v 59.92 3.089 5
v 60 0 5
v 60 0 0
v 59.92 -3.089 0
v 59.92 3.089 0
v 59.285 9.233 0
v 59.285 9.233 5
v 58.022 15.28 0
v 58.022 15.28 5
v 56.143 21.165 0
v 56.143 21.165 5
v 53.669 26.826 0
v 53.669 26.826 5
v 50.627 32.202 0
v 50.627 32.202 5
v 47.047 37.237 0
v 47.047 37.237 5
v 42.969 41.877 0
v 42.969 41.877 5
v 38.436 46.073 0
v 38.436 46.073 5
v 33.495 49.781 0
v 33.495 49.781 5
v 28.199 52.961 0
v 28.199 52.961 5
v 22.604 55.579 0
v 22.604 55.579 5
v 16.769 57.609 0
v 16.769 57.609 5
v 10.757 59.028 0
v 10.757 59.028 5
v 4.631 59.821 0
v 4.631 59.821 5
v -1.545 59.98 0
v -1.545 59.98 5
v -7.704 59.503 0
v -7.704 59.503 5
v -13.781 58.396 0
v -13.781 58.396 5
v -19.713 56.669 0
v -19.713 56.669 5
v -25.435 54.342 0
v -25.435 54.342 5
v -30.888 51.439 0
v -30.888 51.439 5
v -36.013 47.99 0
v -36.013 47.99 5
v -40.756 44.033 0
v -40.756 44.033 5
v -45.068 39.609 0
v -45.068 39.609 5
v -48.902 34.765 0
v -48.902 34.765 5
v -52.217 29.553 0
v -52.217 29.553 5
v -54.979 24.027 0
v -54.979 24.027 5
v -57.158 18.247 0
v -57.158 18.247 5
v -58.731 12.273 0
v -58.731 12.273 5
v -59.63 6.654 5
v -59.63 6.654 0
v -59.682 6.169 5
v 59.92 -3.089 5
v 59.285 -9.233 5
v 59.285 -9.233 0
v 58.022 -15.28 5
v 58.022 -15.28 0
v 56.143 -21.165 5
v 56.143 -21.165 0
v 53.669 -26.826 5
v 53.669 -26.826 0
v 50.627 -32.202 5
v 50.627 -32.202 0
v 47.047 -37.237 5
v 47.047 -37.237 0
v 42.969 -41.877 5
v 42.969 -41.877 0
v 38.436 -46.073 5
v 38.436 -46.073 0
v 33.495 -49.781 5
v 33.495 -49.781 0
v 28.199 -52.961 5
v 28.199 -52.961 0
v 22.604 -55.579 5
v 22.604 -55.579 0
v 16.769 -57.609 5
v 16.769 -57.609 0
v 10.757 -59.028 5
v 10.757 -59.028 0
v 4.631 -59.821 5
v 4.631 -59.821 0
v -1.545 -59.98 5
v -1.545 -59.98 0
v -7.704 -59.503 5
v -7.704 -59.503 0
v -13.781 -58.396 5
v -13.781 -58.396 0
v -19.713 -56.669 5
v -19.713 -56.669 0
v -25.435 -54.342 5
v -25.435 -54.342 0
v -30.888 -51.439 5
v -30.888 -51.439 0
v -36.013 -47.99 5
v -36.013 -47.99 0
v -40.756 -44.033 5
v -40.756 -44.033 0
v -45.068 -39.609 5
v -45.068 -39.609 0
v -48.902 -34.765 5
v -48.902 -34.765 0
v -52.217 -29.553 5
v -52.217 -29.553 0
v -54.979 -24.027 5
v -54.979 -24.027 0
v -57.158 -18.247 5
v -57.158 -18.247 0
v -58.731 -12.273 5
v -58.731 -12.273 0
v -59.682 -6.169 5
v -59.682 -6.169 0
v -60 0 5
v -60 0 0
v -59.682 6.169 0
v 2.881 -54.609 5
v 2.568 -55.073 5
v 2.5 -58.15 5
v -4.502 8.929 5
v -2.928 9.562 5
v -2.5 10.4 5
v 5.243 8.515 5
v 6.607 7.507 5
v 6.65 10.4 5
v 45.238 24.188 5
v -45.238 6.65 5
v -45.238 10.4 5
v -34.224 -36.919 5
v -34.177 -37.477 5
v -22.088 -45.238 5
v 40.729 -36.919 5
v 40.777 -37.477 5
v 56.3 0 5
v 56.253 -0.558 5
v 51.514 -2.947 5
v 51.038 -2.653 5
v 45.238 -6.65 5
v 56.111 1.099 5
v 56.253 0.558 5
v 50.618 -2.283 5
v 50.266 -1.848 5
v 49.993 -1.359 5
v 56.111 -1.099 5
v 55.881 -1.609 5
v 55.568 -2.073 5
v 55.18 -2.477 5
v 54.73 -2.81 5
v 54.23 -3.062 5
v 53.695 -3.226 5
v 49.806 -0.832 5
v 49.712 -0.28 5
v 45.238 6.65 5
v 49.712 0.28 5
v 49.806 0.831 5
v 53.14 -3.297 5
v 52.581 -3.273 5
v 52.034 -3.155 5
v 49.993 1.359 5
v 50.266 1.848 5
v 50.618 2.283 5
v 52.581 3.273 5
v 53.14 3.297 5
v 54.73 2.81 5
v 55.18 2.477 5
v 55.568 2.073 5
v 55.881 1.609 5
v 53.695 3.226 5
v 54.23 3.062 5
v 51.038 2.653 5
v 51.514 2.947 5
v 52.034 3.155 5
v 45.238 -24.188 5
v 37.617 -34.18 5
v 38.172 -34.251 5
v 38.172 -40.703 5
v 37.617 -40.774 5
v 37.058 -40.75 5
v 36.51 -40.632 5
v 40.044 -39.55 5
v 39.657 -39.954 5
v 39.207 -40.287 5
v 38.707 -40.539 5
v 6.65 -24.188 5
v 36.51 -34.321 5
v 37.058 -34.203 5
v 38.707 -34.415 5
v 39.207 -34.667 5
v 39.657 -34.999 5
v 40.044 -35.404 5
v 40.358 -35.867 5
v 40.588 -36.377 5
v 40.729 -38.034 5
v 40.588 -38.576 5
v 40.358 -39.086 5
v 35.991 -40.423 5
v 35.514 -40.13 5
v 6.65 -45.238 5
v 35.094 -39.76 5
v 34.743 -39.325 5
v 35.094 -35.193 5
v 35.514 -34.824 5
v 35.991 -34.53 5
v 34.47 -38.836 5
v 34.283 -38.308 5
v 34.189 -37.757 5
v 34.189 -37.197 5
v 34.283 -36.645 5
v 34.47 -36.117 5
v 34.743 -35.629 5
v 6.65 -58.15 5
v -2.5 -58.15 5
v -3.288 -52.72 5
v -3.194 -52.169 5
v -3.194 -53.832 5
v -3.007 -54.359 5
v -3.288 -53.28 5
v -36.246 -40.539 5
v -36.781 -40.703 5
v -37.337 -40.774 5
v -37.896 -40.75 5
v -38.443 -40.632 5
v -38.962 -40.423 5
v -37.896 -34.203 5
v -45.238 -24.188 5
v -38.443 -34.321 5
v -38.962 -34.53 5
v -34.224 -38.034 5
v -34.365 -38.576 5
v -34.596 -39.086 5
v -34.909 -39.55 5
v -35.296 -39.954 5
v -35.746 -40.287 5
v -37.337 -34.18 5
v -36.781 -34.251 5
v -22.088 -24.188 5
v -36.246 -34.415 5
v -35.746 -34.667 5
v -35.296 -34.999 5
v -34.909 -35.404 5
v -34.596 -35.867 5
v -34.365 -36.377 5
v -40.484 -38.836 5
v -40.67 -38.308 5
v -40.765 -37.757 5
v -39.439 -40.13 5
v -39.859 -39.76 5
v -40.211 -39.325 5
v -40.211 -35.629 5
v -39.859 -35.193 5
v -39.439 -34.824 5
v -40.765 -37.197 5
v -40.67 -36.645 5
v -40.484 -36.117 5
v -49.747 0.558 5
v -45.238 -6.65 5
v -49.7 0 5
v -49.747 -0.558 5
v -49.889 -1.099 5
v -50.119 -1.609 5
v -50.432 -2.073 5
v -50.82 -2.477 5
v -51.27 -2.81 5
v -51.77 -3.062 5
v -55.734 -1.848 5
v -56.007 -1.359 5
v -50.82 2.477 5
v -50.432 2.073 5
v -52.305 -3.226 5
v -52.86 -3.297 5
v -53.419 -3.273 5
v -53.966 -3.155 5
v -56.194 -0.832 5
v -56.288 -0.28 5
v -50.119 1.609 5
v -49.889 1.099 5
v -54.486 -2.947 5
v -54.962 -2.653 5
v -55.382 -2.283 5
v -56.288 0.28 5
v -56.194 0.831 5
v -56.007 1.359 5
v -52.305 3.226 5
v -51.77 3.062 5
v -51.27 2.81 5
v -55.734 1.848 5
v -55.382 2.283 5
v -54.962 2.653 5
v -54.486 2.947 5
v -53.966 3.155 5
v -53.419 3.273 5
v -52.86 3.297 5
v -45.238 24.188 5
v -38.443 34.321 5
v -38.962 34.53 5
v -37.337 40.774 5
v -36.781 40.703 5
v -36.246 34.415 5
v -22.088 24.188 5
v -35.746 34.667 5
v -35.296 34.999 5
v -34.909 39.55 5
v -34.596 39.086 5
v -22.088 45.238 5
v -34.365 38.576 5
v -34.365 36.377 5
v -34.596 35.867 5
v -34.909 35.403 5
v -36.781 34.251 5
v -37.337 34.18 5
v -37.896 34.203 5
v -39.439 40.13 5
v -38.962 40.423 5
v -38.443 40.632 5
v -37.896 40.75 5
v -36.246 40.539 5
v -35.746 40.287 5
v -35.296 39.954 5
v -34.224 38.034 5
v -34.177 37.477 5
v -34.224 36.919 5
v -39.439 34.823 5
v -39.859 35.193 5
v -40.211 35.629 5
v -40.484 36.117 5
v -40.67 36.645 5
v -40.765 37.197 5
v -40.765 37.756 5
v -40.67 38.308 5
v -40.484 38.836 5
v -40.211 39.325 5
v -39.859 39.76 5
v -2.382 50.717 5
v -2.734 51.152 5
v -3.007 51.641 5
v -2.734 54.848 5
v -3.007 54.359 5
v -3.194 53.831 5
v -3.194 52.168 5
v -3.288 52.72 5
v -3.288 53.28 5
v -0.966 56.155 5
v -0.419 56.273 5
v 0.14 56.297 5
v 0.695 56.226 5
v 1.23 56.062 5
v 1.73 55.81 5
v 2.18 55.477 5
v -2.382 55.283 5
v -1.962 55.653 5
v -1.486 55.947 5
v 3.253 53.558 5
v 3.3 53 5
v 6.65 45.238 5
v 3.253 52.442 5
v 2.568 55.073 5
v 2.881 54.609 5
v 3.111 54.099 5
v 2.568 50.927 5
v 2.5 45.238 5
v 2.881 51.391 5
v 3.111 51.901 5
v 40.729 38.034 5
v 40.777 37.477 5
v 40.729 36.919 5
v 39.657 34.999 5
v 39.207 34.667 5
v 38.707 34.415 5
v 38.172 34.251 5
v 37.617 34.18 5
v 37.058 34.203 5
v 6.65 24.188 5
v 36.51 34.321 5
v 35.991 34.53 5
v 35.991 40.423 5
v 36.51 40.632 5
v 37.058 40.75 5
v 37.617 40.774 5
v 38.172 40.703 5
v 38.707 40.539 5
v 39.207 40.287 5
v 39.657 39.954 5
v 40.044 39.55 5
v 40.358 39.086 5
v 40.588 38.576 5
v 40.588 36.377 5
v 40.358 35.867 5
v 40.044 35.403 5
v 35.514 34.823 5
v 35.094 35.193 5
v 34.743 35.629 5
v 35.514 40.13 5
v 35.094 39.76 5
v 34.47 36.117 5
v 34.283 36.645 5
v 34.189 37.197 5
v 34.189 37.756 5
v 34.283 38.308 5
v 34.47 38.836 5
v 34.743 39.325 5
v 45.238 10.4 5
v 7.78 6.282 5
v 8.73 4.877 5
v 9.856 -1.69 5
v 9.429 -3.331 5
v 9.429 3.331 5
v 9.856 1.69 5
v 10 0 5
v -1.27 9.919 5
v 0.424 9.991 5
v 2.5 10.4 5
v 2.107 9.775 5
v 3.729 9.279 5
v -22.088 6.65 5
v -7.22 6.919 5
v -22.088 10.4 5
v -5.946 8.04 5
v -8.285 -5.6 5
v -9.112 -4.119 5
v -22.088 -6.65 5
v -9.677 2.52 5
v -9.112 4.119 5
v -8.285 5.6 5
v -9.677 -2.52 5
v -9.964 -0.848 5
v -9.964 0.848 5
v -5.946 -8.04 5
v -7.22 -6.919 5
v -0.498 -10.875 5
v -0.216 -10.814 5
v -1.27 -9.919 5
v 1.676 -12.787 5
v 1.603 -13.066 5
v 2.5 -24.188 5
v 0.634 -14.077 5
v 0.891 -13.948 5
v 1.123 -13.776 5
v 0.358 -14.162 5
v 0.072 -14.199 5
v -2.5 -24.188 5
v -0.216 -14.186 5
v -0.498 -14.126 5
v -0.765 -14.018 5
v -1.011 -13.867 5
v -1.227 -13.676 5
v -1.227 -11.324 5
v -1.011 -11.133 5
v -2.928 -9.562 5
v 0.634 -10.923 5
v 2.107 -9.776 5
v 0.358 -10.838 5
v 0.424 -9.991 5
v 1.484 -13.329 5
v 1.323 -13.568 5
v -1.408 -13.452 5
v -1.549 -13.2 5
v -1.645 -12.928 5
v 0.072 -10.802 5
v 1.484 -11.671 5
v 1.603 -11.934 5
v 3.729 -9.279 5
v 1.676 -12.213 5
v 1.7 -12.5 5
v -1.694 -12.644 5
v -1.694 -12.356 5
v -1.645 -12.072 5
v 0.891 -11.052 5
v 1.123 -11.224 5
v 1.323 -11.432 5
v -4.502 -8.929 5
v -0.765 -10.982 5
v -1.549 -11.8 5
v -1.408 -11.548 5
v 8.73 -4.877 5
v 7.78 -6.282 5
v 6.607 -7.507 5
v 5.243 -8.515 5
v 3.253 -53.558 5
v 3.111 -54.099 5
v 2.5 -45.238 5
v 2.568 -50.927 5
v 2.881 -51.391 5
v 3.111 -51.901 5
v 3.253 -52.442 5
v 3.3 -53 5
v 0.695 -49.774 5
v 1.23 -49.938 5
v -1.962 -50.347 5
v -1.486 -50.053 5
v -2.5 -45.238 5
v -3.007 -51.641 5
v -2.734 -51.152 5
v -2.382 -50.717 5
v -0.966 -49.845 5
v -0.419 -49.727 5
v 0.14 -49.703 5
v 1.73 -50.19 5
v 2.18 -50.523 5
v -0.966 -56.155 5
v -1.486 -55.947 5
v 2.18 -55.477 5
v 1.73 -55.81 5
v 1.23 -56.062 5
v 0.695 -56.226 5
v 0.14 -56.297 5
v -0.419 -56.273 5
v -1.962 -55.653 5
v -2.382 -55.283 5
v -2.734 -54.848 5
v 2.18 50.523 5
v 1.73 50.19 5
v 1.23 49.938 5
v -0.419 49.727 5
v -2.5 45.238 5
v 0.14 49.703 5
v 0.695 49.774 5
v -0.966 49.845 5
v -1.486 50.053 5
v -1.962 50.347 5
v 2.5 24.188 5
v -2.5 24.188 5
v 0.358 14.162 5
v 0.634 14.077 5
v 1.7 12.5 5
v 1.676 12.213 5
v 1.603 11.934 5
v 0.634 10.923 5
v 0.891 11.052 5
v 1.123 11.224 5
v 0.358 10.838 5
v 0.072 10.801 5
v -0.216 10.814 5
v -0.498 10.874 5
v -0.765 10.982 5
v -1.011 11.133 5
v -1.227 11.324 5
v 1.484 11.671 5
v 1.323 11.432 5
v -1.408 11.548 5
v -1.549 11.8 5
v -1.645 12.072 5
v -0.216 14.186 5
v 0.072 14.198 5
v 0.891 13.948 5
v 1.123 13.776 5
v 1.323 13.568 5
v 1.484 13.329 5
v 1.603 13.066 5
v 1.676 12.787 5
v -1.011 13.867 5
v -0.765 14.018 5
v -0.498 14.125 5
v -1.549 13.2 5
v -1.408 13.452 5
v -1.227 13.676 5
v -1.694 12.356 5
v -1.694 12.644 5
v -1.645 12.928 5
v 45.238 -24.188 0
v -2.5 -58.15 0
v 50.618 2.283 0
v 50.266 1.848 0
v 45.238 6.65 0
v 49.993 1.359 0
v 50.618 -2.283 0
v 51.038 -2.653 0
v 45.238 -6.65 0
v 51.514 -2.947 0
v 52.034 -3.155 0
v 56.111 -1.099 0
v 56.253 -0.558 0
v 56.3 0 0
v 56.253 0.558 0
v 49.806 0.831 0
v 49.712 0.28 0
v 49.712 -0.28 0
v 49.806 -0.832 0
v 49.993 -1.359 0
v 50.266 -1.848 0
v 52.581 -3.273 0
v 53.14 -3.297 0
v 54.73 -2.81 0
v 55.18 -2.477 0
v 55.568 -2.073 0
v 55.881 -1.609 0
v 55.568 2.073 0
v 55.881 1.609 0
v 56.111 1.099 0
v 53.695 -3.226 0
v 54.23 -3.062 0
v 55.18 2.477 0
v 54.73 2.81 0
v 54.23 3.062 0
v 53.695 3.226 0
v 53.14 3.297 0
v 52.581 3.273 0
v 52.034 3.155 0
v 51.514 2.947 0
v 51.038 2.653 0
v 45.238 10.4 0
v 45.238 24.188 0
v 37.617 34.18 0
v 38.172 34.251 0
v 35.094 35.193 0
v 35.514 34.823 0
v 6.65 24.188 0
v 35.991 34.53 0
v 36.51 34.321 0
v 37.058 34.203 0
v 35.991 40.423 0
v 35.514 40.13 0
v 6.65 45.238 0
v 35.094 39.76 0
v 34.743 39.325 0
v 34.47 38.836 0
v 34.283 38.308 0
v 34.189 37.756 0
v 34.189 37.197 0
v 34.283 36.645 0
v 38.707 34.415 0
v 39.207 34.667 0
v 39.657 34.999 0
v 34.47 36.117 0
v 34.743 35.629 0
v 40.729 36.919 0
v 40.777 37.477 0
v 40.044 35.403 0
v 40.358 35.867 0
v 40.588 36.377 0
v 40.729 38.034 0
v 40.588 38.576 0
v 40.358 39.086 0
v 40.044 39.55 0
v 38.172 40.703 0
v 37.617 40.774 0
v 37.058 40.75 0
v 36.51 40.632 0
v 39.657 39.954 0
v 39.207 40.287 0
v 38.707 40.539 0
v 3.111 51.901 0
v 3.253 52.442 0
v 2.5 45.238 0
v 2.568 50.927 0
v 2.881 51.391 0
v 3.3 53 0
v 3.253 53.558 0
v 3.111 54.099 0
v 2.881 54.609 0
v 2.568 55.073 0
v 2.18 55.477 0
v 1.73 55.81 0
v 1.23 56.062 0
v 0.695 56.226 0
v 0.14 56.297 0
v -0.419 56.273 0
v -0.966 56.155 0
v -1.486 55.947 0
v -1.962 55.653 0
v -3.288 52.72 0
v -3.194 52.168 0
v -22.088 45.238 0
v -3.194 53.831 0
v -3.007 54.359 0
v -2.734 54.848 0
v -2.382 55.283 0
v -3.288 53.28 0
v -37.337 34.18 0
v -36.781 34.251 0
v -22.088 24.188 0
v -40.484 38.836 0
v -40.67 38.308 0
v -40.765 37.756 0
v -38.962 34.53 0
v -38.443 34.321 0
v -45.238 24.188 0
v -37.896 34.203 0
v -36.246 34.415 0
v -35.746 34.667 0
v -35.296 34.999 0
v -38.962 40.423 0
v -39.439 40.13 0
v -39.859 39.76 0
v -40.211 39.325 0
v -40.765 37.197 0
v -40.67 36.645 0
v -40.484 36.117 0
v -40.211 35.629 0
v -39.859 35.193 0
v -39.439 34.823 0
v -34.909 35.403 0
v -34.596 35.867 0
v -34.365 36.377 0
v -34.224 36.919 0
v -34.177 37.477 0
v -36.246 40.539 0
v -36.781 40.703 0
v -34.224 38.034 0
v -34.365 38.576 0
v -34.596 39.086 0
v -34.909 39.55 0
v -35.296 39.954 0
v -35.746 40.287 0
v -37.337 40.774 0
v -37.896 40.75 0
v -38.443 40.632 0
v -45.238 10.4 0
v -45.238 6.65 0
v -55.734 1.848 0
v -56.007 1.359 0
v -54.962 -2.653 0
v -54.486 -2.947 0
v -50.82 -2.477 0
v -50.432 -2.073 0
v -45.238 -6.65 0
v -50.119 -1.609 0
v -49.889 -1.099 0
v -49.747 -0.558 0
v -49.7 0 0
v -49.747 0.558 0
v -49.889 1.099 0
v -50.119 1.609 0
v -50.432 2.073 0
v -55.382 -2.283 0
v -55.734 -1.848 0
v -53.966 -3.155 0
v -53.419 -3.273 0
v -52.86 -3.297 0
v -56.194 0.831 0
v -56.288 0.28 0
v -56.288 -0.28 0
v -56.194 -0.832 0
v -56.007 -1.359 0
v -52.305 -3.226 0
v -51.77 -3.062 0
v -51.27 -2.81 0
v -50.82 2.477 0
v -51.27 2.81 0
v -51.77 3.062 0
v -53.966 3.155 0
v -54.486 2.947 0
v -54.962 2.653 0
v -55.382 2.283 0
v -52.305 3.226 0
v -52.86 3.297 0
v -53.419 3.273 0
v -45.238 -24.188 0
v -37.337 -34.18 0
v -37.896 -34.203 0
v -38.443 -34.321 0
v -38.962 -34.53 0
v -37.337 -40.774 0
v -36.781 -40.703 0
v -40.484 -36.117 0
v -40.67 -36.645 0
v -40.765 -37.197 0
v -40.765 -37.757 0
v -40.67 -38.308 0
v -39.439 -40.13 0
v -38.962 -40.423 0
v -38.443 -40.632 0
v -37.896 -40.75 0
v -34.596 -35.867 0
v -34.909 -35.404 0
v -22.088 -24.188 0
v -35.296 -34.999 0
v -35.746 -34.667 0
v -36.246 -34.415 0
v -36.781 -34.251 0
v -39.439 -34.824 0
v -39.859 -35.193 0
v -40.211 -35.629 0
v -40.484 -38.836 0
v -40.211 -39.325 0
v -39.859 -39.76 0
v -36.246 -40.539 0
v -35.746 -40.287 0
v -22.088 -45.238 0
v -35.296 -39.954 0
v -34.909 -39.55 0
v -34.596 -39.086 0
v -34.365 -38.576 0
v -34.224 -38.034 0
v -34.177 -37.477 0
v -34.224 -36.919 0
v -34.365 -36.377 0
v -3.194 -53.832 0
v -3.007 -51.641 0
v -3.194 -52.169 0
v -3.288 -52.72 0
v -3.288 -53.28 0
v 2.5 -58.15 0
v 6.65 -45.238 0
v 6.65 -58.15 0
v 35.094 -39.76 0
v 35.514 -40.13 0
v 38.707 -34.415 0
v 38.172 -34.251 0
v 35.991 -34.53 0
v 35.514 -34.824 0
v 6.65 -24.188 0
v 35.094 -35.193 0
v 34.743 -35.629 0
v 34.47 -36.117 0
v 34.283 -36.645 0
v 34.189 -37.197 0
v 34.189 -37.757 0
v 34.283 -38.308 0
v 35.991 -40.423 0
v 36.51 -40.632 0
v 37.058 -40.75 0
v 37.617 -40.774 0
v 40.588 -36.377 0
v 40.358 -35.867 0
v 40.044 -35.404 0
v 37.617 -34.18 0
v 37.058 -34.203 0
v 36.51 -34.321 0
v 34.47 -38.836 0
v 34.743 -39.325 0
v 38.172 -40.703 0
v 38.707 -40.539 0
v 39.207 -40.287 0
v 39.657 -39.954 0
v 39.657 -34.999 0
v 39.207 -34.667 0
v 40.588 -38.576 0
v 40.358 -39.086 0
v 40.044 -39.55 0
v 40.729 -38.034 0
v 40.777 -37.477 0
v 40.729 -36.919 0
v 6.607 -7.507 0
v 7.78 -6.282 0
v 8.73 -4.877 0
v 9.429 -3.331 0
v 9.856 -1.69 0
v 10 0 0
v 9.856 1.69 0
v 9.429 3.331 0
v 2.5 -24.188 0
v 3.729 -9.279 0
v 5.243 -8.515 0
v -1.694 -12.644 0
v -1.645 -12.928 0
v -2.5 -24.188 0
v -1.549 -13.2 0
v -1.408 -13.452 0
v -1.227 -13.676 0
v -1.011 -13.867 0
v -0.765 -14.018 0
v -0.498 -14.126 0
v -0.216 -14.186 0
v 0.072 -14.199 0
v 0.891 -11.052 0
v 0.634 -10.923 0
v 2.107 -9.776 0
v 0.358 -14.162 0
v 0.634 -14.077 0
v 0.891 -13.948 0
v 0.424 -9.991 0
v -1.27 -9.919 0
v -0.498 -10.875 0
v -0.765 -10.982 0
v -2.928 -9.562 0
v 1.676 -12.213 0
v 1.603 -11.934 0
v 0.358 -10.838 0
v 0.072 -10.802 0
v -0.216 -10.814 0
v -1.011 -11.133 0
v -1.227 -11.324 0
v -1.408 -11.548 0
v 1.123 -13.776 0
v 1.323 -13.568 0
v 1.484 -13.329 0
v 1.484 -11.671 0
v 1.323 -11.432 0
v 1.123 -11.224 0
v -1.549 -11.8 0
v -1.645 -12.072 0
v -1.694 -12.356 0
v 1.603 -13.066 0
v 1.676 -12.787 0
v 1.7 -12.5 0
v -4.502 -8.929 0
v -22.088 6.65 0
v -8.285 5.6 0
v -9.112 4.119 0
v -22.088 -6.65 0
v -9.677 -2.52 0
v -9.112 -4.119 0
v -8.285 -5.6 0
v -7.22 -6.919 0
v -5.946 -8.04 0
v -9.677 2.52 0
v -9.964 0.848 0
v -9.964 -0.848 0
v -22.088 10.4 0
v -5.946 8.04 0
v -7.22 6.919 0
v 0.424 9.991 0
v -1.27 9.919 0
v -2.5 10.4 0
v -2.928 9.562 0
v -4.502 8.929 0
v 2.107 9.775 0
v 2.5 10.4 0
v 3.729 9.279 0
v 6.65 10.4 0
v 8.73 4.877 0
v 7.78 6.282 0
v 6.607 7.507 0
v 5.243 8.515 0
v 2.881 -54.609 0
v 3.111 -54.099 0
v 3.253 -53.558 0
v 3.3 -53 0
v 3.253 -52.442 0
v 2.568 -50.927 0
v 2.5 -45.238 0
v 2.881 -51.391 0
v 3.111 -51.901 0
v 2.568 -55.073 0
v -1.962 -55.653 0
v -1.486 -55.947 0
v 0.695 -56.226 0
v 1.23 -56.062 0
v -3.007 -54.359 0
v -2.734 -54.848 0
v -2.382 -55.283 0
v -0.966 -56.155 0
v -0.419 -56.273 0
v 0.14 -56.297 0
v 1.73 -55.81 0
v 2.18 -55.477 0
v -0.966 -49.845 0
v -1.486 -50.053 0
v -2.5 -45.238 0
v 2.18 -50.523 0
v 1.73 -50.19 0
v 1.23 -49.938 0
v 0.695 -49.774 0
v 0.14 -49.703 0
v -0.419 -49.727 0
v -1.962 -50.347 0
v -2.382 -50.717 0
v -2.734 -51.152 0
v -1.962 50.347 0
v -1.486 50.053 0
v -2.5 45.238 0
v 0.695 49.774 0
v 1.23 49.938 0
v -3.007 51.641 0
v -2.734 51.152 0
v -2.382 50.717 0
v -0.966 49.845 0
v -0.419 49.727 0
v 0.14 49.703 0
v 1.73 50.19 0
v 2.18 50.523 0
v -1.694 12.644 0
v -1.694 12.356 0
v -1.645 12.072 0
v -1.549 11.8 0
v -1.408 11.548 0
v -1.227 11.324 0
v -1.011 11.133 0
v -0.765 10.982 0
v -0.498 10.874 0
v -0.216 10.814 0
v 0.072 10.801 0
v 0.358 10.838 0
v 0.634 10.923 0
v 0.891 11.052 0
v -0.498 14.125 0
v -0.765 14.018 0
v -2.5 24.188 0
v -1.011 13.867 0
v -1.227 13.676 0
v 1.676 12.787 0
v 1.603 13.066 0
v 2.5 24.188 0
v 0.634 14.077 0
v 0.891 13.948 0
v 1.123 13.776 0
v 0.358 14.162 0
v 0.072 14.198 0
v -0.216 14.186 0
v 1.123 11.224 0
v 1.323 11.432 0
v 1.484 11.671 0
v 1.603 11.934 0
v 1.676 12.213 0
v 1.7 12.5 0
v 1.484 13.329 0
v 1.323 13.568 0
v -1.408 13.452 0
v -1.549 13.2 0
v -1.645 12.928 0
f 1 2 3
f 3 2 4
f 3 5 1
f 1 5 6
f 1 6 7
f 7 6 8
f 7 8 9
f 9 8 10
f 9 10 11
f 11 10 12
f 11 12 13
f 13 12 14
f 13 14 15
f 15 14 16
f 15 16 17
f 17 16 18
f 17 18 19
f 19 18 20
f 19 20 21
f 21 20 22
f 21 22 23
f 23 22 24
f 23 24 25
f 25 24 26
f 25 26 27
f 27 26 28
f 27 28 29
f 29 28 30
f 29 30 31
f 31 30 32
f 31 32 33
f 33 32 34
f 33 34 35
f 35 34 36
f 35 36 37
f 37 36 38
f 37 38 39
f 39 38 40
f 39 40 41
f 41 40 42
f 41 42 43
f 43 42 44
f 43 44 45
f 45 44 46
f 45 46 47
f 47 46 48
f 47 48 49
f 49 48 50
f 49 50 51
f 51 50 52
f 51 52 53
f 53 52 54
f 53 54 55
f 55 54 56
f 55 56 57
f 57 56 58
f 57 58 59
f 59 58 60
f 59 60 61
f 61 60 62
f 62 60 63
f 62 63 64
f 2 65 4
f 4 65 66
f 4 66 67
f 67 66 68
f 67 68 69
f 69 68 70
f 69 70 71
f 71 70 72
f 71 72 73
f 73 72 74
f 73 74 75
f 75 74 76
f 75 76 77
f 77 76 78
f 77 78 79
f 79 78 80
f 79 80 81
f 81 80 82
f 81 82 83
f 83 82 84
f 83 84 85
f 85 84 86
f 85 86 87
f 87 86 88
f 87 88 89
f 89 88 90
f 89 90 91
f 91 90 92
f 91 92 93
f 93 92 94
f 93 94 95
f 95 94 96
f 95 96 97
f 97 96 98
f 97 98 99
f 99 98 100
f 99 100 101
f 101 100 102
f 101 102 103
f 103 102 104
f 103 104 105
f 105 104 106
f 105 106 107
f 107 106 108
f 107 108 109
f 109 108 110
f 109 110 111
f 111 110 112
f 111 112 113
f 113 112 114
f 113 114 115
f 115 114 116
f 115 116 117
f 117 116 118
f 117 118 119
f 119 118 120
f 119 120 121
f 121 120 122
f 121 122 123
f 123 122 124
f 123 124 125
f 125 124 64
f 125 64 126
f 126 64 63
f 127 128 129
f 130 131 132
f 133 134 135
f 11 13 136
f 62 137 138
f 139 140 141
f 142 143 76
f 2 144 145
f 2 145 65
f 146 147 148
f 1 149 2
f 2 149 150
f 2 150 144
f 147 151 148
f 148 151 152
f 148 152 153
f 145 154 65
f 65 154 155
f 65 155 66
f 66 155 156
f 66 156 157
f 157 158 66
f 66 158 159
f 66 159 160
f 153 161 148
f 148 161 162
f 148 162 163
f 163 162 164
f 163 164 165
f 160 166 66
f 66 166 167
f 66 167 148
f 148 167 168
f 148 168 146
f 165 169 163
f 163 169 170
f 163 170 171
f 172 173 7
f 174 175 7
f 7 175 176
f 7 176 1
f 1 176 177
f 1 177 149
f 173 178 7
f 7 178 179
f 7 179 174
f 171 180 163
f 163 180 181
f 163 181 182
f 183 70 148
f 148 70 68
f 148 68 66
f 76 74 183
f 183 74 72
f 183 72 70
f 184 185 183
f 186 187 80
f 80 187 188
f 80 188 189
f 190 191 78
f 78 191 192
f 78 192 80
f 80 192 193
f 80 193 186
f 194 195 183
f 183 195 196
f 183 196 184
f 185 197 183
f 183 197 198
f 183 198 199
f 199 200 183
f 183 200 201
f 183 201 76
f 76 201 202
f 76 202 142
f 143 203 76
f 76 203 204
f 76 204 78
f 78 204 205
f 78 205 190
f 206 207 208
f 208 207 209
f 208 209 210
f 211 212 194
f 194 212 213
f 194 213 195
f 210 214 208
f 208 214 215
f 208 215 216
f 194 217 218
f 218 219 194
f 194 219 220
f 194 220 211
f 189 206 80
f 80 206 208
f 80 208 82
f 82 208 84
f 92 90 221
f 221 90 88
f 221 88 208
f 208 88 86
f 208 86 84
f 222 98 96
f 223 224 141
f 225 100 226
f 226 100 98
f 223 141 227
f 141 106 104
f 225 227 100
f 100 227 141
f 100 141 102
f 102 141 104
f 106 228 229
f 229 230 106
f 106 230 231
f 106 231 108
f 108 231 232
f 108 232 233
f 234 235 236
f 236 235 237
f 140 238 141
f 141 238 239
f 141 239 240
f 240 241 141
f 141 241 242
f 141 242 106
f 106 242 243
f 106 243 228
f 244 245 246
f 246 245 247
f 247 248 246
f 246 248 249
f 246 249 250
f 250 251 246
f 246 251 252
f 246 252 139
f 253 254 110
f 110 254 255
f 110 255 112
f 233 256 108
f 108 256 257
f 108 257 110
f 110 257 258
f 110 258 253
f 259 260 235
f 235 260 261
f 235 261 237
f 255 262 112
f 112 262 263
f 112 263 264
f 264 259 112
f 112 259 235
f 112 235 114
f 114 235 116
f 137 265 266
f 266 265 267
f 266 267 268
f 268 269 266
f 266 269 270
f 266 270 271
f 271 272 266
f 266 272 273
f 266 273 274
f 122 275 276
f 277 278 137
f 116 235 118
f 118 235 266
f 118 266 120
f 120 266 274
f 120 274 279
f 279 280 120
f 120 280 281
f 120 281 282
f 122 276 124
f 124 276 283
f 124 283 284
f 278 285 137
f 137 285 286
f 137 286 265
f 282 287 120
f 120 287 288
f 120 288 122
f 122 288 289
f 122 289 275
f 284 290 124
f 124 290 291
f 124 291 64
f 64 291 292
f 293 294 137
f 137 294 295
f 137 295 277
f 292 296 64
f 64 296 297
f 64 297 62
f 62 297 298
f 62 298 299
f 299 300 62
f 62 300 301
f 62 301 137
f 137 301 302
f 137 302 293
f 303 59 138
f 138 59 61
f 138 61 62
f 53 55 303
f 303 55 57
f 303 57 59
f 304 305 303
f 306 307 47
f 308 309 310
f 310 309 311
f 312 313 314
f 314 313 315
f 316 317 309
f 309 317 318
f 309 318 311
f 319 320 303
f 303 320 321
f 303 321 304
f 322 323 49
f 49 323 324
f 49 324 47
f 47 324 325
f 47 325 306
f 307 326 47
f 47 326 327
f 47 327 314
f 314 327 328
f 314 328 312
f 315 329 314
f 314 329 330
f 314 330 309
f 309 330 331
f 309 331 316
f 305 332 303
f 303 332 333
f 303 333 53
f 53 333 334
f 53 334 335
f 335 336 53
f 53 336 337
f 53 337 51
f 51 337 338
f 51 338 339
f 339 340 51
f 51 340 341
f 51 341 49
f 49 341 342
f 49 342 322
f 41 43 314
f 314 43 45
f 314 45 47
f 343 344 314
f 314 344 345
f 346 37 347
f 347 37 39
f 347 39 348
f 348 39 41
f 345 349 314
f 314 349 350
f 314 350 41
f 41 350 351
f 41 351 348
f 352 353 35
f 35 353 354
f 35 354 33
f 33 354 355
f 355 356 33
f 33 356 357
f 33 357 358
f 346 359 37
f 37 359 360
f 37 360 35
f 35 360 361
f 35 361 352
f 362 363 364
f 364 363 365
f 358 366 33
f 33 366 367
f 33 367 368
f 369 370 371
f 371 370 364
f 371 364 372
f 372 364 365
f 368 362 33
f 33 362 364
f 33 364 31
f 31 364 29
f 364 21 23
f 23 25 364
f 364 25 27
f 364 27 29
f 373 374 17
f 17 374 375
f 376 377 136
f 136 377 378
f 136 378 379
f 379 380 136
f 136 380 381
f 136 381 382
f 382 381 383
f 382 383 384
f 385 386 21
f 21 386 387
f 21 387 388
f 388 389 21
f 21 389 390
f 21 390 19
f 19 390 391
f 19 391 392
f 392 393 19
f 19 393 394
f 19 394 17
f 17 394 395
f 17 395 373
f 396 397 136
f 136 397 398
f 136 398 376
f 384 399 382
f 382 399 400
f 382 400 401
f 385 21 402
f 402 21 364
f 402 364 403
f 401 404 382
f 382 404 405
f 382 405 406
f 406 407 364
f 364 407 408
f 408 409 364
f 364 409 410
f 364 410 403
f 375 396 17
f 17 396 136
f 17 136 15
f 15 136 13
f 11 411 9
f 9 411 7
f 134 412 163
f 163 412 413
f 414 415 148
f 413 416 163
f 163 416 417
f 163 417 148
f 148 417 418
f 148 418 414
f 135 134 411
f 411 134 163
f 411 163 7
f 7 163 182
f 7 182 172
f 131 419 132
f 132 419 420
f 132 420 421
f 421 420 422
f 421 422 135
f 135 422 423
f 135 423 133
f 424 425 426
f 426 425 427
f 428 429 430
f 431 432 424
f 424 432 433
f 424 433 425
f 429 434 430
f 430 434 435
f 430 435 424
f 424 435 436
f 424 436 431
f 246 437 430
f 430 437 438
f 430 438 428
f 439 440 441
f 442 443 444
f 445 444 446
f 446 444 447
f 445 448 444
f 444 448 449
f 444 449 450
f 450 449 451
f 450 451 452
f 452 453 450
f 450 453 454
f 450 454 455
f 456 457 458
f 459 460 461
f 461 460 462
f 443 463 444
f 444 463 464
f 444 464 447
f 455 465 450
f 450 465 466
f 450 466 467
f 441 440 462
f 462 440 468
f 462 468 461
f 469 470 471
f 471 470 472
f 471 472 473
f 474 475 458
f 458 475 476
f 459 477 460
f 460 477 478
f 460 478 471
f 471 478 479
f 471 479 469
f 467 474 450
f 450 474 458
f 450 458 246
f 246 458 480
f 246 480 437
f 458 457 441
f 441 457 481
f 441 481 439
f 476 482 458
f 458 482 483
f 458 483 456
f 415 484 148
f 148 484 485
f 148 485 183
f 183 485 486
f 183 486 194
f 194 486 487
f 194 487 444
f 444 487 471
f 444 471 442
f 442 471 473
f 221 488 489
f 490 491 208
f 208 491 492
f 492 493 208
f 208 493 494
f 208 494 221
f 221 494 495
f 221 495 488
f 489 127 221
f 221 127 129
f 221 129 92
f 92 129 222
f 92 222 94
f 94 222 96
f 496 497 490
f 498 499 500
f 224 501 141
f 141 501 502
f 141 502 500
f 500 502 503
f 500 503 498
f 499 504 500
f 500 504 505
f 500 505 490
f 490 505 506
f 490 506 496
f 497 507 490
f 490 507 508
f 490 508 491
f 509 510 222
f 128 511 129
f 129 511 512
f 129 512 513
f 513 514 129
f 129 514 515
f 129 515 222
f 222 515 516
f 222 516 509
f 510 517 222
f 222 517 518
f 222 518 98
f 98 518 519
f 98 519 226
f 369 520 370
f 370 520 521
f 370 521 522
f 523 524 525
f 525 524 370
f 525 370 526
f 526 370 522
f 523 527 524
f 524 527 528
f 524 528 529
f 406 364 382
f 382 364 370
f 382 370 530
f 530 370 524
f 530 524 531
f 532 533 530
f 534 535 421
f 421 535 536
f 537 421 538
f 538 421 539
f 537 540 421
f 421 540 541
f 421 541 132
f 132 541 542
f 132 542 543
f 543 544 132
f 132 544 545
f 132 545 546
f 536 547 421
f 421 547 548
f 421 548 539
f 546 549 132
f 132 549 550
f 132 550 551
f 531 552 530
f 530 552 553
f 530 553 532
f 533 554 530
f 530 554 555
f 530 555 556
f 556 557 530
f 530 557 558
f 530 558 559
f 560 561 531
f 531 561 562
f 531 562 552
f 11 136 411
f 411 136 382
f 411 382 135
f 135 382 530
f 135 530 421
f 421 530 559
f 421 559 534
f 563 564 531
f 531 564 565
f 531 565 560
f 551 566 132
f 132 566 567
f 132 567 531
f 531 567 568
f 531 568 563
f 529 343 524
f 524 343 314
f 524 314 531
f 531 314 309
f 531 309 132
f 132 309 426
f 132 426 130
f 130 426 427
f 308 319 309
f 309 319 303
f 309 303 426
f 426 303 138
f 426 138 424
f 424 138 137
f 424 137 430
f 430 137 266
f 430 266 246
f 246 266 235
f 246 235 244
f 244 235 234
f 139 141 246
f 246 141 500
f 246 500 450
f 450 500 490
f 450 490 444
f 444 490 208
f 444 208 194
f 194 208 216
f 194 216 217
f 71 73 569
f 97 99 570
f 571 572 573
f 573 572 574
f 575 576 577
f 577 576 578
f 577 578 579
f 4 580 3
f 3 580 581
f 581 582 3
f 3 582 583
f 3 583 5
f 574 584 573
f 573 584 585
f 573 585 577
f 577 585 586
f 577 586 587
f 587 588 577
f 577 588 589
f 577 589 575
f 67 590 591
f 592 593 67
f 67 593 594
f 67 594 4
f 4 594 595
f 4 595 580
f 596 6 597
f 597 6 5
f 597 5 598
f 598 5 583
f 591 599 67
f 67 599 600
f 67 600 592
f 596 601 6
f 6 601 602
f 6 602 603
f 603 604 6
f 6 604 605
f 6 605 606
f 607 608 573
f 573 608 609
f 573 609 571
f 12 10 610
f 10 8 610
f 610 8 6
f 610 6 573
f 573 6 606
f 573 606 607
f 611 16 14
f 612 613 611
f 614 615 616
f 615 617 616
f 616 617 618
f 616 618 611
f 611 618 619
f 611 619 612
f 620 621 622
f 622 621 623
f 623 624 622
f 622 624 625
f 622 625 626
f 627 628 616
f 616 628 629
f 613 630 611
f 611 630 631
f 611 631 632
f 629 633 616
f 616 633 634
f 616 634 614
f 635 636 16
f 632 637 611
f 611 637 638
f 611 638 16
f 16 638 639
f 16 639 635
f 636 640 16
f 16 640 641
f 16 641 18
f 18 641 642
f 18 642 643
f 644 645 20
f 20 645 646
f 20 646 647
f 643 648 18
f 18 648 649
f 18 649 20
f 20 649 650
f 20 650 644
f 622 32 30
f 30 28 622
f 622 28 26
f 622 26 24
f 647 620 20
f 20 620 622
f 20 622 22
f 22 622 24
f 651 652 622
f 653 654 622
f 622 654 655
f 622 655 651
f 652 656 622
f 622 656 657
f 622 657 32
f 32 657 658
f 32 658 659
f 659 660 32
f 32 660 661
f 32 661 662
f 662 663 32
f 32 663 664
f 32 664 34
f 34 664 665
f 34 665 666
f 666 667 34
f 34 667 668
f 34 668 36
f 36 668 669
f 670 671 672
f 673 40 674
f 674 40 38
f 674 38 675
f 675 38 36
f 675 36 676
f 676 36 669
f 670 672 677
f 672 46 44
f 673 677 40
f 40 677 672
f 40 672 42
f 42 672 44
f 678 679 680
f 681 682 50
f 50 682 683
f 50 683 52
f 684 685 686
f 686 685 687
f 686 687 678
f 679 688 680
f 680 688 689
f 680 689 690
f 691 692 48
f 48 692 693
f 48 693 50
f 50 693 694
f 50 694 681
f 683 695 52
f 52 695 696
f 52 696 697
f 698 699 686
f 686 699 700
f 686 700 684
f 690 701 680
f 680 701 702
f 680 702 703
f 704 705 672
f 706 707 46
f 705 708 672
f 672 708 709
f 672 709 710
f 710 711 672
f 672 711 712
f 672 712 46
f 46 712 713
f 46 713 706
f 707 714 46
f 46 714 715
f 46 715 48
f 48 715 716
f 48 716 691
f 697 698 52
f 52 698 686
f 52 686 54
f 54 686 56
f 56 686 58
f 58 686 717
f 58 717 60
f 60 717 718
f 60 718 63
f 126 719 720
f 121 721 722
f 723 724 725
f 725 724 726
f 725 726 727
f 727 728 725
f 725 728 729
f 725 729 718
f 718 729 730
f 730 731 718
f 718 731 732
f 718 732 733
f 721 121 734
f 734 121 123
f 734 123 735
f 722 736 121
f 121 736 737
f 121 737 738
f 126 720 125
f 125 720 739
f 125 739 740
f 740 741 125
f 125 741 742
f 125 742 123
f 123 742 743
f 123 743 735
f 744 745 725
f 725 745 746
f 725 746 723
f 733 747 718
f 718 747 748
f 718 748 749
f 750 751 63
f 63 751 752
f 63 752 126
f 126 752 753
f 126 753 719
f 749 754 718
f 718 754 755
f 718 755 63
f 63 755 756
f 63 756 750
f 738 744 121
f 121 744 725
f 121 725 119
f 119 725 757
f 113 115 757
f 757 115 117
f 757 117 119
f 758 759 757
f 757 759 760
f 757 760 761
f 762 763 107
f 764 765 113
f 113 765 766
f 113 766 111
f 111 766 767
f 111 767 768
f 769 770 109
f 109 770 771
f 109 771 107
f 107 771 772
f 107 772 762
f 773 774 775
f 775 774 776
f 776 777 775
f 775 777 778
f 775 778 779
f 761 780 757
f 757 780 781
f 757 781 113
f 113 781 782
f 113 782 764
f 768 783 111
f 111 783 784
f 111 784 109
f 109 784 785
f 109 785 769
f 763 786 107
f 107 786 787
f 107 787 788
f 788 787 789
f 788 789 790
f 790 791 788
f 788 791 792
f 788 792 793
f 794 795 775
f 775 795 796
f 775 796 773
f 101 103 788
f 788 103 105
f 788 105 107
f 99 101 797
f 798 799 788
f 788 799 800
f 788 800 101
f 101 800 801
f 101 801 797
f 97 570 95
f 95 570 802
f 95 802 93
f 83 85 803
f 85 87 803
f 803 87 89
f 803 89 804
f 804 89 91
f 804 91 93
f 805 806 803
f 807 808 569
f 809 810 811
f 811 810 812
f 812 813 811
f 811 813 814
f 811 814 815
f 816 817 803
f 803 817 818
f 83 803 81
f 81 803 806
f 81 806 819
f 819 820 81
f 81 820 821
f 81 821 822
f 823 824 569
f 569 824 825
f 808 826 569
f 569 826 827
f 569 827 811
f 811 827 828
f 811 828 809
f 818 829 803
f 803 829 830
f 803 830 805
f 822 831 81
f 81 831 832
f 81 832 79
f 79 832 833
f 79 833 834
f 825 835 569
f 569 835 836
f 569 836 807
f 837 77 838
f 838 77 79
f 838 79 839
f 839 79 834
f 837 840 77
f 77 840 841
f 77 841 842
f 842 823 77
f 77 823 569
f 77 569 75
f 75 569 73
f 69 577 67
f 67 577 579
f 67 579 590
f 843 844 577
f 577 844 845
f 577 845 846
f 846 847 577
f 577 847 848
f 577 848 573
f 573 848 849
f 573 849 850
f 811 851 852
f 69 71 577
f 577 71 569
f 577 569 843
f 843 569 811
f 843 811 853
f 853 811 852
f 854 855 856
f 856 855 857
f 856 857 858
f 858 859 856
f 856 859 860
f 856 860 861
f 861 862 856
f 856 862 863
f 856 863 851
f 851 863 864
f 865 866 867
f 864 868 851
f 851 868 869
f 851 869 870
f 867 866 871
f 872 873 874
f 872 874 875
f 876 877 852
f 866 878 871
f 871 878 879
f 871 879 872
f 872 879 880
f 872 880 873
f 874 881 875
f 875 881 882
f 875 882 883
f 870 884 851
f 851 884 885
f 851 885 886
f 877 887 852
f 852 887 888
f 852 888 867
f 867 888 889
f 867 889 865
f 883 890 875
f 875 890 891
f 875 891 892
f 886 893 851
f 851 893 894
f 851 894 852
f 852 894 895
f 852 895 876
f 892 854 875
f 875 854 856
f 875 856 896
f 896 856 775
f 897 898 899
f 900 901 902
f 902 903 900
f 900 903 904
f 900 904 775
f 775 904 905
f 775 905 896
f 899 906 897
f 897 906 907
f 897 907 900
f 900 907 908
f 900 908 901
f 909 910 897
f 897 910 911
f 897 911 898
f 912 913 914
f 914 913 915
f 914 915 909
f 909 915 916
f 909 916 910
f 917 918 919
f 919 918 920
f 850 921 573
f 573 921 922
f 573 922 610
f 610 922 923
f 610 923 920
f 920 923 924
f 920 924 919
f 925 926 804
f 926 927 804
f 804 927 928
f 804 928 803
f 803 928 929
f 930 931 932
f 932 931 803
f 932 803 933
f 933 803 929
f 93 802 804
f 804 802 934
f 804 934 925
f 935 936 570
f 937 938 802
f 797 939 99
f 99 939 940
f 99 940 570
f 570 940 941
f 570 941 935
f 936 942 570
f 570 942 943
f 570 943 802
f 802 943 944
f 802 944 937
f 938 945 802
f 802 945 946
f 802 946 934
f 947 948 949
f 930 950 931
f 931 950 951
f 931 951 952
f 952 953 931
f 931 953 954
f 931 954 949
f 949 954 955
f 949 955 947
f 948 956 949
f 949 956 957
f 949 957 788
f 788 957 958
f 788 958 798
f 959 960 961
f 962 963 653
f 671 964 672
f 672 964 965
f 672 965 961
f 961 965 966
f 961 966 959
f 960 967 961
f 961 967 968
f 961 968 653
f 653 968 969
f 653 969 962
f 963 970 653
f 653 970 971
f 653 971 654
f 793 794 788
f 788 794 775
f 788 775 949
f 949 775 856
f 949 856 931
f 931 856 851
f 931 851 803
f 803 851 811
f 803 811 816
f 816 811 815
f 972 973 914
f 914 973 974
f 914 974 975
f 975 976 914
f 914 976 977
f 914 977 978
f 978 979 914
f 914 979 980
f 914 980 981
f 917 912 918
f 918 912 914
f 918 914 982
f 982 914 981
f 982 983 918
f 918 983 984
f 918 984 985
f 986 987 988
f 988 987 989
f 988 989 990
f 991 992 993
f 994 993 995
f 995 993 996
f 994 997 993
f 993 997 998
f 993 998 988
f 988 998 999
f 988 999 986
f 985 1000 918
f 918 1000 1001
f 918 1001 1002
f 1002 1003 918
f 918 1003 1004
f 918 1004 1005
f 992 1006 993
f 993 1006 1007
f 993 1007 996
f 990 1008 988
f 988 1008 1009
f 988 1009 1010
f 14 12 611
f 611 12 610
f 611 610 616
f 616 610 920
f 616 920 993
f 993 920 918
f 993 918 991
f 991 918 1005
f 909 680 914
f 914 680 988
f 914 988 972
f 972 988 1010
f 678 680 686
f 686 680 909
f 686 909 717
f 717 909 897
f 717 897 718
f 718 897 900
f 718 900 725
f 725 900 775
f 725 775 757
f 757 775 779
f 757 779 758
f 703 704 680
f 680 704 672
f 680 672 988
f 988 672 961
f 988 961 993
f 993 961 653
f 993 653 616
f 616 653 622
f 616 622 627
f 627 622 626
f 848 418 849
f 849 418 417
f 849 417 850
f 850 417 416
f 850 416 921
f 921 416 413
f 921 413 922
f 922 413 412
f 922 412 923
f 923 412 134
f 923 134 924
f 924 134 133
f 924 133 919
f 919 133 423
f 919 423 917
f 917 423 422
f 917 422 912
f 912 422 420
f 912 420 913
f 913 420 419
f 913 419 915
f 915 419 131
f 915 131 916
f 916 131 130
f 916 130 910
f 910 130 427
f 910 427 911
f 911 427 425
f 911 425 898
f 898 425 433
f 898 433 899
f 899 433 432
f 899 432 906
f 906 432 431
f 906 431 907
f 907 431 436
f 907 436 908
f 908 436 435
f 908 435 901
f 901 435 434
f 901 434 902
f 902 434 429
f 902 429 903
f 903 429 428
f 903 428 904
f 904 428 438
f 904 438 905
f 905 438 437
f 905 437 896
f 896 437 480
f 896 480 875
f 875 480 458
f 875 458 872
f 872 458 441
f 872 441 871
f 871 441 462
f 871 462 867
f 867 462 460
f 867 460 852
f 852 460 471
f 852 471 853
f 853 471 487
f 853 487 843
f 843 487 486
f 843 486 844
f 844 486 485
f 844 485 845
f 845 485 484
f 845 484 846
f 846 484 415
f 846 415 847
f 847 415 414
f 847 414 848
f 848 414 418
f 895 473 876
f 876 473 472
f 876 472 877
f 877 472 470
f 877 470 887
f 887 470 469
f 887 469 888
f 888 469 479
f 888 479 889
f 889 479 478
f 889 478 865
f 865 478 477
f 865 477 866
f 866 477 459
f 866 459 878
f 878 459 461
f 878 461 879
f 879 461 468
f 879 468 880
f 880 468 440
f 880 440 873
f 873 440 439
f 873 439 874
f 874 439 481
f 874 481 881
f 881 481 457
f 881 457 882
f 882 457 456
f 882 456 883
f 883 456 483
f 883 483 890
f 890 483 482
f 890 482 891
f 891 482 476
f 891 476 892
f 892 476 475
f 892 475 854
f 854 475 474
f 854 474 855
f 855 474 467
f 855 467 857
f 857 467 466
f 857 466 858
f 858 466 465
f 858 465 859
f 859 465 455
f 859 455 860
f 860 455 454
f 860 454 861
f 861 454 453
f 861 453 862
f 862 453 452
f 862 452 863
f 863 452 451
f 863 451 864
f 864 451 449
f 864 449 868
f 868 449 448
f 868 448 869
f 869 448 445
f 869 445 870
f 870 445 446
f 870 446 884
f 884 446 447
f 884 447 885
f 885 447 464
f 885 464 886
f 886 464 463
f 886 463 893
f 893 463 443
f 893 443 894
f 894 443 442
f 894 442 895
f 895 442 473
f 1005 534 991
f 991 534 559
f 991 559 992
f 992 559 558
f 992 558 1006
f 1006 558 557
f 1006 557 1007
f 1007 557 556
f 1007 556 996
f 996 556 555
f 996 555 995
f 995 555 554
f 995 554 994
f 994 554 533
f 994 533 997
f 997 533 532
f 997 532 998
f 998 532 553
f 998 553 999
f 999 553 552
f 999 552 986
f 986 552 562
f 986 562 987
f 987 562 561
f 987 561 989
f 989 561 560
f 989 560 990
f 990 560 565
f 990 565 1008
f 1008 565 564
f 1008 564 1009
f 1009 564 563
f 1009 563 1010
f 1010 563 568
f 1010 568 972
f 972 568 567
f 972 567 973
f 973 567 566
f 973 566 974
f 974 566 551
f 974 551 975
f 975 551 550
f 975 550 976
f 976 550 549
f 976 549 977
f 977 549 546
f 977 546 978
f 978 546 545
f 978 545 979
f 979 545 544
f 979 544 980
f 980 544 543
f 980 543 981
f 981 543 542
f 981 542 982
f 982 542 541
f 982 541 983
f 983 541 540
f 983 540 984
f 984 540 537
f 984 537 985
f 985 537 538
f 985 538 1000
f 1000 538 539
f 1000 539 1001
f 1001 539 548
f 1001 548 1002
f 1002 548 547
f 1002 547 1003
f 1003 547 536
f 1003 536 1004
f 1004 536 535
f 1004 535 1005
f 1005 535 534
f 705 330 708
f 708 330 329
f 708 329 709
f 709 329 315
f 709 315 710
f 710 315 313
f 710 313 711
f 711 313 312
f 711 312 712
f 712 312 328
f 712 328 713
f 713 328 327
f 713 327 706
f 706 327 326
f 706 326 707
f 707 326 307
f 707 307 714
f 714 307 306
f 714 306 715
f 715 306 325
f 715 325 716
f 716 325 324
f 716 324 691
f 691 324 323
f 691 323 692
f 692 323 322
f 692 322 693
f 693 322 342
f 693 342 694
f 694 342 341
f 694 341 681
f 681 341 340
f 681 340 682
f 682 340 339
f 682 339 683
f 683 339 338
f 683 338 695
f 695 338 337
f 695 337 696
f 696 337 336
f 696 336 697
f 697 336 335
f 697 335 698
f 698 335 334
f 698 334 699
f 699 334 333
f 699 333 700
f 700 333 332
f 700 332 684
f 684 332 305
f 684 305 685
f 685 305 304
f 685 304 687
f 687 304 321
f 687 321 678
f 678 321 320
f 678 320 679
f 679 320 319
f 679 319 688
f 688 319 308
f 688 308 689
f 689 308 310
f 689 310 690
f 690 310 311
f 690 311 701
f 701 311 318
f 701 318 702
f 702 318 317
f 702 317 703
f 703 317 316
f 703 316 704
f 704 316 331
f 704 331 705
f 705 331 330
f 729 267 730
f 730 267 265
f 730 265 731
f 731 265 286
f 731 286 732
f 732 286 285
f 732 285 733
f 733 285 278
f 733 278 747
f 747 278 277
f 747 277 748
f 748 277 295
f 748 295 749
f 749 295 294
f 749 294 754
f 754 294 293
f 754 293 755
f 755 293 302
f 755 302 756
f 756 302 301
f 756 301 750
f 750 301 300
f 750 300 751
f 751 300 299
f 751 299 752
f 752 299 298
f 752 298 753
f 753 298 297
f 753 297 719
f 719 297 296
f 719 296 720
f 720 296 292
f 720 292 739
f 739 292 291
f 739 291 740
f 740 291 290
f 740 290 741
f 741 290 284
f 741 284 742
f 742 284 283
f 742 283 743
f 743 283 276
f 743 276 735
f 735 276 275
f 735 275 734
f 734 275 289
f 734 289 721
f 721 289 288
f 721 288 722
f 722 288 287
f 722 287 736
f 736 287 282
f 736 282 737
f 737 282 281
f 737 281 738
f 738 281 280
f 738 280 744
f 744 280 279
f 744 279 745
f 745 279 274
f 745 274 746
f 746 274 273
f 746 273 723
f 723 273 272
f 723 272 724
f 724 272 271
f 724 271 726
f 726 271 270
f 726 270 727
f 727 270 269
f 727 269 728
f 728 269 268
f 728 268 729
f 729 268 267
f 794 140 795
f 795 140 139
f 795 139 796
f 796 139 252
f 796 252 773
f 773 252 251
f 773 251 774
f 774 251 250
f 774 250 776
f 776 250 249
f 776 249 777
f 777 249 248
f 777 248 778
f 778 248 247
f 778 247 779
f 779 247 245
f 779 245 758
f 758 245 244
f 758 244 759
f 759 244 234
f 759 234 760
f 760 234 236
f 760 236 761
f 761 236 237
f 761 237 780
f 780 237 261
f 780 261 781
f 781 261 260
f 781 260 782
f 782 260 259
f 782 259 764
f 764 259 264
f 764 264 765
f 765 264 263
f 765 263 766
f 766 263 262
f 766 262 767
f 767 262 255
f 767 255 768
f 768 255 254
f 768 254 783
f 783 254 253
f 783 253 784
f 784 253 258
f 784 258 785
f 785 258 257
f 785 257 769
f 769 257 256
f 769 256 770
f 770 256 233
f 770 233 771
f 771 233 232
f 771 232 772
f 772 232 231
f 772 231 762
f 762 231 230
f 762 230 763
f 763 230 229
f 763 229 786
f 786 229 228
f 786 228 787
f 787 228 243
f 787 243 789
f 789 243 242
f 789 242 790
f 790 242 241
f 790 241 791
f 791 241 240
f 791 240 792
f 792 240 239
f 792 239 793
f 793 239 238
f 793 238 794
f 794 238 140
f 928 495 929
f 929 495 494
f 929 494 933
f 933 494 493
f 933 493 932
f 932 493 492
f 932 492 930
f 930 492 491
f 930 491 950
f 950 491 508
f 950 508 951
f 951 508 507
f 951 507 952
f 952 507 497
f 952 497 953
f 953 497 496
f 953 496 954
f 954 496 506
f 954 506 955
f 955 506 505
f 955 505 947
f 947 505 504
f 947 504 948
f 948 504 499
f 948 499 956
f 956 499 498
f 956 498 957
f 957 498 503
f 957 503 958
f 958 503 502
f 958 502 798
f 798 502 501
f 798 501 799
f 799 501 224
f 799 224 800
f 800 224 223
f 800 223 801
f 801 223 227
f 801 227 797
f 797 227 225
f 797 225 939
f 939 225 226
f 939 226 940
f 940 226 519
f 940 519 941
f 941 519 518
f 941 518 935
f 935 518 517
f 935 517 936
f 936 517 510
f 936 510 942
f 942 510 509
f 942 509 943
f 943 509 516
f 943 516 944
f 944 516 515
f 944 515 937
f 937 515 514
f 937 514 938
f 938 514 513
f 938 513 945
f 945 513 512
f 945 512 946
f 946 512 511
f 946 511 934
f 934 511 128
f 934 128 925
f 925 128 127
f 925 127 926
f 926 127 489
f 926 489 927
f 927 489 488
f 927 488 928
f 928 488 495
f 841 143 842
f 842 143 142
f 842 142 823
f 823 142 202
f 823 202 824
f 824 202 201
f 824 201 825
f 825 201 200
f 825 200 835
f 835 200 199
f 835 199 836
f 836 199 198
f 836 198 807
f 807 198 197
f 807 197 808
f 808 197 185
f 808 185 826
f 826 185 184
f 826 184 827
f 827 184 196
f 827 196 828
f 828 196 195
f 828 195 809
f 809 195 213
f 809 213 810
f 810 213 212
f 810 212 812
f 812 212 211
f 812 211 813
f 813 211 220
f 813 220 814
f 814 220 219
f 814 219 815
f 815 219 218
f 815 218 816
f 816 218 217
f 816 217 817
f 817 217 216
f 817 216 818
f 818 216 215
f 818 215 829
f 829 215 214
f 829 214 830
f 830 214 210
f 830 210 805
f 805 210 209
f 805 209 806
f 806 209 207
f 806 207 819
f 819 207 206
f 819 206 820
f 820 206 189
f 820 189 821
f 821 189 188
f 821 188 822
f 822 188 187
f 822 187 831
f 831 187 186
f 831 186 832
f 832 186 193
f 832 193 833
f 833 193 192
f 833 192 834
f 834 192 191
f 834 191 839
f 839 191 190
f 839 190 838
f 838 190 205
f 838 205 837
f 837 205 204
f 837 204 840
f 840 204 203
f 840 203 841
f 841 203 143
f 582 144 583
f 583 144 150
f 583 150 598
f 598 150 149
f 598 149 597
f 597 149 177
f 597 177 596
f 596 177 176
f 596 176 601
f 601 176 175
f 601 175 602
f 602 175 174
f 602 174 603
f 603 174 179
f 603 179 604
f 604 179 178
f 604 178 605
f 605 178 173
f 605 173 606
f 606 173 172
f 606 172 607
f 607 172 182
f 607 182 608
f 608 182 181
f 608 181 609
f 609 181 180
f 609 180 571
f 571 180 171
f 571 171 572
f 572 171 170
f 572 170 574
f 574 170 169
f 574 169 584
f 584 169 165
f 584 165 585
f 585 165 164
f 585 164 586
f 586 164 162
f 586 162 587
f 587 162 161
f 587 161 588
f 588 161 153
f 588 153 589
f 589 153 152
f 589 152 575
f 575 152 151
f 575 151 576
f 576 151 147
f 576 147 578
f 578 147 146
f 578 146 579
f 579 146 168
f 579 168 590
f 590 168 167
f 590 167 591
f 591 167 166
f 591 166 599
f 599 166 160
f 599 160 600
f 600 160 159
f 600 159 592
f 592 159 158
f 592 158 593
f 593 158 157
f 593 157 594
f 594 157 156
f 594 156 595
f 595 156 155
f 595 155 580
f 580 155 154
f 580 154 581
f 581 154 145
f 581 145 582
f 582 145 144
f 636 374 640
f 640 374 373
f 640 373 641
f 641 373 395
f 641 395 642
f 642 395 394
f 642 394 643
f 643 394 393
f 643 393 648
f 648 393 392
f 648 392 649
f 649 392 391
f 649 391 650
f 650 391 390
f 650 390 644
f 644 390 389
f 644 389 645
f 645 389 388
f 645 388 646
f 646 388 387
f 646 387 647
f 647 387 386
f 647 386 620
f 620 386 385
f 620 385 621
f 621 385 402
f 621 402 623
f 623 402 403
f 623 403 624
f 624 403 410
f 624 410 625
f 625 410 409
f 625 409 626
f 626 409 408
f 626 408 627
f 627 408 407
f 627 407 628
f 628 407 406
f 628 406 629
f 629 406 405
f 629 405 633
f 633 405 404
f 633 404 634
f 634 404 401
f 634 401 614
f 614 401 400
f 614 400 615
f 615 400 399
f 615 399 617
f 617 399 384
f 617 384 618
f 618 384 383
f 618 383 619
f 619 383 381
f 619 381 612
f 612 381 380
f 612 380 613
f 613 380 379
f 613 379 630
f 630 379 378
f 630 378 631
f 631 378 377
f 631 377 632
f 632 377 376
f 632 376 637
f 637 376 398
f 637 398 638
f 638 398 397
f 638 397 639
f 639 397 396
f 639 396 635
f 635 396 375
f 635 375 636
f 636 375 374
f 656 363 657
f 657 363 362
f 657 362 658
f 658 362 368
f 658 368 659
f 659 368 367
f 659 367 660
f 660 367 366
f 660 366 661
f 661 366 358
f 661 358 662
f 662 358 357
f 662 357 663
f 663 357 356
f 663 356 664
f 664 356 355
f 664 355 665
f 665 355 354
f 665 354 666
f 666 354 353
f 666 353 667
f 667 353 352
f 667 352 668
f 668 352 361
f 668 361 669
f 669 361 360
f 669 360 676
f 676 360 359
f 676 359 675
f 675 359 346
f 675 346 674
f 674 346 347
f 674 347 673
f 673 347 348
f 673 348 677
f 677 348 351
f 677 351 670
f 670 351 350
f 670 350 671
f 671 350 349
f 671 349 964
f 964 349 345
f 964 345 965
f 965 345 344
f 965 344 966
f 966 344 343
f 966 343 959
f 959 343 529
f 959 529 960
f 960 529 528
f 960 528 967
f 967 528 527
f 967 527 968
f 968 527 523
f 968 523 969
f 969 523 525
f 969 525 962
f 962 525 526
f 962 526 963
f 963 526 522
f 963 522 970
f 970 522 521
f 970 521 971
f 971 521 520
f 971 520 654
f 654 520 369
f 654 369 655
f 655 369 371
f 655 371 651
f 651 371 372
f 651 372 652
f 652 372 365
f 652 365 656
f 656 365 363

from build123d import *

# Parameters (mm, degrees)
SKETCH1_R               = 60
BOSS_EXTRUDE1_DEPTH     = 5
SKETCH7_R               = 10
CUT_EXTRUDE1_DEPTH      = 1
CUT_EXTRUDE1_DEPTH_BACK = 6
M3_CLEARANCE_HOLE1_D    = 3.4
M6_CLEARANCE_HOLE1_D    = 6.6


with BuildPart() as part:
    # Sketch1 → Boss-Extrude1 (new body)
    with BuildSketch(Plane.XY):
        Circle(SKETCH1_R)
    extrude(amount=BOSS_EXTRUDE1_DEPTH)

    # Sketch7 → Cut-Extrude1 (cut, two sides)
    with BuildSketch(Plane.XY.offset(5)) as cut_extrude1_sk:
        Circle(SKETCH7_R)
    extrude(amount=CUT_EXTRUDE1_DEPTH, mode=Mode.SUBTRACT)
    extrude(cut_extrude1_sk.sketch, amount=-CUT_EXTRUDE1_DEPTH_BACK, mode=Mode.SUBTRACT)

    # M3 Clearance Hole1 (through all)
    with Locations(Plane.XY.offset(5)):
        with Locations((0, 12.5), (0, -12.5)):
            Hole(M3_CLEARANCE_HOLE1_D / 2)

    # M6 Clearance Hole1 (through all)
    with Locations(Plane.XY.offset(5)):
        with Locations((-37.476659403, 37.476659403), (0, 53), (37.476659403, 37.476659403), (53, 0), (37.476659403, -37.476659403), (0, -53), (-37.476659403, -37.476659403), (-53, 0)):
            Hole(M6_CLEARANCE_HOLE1_D / 2)


solid = part.part
